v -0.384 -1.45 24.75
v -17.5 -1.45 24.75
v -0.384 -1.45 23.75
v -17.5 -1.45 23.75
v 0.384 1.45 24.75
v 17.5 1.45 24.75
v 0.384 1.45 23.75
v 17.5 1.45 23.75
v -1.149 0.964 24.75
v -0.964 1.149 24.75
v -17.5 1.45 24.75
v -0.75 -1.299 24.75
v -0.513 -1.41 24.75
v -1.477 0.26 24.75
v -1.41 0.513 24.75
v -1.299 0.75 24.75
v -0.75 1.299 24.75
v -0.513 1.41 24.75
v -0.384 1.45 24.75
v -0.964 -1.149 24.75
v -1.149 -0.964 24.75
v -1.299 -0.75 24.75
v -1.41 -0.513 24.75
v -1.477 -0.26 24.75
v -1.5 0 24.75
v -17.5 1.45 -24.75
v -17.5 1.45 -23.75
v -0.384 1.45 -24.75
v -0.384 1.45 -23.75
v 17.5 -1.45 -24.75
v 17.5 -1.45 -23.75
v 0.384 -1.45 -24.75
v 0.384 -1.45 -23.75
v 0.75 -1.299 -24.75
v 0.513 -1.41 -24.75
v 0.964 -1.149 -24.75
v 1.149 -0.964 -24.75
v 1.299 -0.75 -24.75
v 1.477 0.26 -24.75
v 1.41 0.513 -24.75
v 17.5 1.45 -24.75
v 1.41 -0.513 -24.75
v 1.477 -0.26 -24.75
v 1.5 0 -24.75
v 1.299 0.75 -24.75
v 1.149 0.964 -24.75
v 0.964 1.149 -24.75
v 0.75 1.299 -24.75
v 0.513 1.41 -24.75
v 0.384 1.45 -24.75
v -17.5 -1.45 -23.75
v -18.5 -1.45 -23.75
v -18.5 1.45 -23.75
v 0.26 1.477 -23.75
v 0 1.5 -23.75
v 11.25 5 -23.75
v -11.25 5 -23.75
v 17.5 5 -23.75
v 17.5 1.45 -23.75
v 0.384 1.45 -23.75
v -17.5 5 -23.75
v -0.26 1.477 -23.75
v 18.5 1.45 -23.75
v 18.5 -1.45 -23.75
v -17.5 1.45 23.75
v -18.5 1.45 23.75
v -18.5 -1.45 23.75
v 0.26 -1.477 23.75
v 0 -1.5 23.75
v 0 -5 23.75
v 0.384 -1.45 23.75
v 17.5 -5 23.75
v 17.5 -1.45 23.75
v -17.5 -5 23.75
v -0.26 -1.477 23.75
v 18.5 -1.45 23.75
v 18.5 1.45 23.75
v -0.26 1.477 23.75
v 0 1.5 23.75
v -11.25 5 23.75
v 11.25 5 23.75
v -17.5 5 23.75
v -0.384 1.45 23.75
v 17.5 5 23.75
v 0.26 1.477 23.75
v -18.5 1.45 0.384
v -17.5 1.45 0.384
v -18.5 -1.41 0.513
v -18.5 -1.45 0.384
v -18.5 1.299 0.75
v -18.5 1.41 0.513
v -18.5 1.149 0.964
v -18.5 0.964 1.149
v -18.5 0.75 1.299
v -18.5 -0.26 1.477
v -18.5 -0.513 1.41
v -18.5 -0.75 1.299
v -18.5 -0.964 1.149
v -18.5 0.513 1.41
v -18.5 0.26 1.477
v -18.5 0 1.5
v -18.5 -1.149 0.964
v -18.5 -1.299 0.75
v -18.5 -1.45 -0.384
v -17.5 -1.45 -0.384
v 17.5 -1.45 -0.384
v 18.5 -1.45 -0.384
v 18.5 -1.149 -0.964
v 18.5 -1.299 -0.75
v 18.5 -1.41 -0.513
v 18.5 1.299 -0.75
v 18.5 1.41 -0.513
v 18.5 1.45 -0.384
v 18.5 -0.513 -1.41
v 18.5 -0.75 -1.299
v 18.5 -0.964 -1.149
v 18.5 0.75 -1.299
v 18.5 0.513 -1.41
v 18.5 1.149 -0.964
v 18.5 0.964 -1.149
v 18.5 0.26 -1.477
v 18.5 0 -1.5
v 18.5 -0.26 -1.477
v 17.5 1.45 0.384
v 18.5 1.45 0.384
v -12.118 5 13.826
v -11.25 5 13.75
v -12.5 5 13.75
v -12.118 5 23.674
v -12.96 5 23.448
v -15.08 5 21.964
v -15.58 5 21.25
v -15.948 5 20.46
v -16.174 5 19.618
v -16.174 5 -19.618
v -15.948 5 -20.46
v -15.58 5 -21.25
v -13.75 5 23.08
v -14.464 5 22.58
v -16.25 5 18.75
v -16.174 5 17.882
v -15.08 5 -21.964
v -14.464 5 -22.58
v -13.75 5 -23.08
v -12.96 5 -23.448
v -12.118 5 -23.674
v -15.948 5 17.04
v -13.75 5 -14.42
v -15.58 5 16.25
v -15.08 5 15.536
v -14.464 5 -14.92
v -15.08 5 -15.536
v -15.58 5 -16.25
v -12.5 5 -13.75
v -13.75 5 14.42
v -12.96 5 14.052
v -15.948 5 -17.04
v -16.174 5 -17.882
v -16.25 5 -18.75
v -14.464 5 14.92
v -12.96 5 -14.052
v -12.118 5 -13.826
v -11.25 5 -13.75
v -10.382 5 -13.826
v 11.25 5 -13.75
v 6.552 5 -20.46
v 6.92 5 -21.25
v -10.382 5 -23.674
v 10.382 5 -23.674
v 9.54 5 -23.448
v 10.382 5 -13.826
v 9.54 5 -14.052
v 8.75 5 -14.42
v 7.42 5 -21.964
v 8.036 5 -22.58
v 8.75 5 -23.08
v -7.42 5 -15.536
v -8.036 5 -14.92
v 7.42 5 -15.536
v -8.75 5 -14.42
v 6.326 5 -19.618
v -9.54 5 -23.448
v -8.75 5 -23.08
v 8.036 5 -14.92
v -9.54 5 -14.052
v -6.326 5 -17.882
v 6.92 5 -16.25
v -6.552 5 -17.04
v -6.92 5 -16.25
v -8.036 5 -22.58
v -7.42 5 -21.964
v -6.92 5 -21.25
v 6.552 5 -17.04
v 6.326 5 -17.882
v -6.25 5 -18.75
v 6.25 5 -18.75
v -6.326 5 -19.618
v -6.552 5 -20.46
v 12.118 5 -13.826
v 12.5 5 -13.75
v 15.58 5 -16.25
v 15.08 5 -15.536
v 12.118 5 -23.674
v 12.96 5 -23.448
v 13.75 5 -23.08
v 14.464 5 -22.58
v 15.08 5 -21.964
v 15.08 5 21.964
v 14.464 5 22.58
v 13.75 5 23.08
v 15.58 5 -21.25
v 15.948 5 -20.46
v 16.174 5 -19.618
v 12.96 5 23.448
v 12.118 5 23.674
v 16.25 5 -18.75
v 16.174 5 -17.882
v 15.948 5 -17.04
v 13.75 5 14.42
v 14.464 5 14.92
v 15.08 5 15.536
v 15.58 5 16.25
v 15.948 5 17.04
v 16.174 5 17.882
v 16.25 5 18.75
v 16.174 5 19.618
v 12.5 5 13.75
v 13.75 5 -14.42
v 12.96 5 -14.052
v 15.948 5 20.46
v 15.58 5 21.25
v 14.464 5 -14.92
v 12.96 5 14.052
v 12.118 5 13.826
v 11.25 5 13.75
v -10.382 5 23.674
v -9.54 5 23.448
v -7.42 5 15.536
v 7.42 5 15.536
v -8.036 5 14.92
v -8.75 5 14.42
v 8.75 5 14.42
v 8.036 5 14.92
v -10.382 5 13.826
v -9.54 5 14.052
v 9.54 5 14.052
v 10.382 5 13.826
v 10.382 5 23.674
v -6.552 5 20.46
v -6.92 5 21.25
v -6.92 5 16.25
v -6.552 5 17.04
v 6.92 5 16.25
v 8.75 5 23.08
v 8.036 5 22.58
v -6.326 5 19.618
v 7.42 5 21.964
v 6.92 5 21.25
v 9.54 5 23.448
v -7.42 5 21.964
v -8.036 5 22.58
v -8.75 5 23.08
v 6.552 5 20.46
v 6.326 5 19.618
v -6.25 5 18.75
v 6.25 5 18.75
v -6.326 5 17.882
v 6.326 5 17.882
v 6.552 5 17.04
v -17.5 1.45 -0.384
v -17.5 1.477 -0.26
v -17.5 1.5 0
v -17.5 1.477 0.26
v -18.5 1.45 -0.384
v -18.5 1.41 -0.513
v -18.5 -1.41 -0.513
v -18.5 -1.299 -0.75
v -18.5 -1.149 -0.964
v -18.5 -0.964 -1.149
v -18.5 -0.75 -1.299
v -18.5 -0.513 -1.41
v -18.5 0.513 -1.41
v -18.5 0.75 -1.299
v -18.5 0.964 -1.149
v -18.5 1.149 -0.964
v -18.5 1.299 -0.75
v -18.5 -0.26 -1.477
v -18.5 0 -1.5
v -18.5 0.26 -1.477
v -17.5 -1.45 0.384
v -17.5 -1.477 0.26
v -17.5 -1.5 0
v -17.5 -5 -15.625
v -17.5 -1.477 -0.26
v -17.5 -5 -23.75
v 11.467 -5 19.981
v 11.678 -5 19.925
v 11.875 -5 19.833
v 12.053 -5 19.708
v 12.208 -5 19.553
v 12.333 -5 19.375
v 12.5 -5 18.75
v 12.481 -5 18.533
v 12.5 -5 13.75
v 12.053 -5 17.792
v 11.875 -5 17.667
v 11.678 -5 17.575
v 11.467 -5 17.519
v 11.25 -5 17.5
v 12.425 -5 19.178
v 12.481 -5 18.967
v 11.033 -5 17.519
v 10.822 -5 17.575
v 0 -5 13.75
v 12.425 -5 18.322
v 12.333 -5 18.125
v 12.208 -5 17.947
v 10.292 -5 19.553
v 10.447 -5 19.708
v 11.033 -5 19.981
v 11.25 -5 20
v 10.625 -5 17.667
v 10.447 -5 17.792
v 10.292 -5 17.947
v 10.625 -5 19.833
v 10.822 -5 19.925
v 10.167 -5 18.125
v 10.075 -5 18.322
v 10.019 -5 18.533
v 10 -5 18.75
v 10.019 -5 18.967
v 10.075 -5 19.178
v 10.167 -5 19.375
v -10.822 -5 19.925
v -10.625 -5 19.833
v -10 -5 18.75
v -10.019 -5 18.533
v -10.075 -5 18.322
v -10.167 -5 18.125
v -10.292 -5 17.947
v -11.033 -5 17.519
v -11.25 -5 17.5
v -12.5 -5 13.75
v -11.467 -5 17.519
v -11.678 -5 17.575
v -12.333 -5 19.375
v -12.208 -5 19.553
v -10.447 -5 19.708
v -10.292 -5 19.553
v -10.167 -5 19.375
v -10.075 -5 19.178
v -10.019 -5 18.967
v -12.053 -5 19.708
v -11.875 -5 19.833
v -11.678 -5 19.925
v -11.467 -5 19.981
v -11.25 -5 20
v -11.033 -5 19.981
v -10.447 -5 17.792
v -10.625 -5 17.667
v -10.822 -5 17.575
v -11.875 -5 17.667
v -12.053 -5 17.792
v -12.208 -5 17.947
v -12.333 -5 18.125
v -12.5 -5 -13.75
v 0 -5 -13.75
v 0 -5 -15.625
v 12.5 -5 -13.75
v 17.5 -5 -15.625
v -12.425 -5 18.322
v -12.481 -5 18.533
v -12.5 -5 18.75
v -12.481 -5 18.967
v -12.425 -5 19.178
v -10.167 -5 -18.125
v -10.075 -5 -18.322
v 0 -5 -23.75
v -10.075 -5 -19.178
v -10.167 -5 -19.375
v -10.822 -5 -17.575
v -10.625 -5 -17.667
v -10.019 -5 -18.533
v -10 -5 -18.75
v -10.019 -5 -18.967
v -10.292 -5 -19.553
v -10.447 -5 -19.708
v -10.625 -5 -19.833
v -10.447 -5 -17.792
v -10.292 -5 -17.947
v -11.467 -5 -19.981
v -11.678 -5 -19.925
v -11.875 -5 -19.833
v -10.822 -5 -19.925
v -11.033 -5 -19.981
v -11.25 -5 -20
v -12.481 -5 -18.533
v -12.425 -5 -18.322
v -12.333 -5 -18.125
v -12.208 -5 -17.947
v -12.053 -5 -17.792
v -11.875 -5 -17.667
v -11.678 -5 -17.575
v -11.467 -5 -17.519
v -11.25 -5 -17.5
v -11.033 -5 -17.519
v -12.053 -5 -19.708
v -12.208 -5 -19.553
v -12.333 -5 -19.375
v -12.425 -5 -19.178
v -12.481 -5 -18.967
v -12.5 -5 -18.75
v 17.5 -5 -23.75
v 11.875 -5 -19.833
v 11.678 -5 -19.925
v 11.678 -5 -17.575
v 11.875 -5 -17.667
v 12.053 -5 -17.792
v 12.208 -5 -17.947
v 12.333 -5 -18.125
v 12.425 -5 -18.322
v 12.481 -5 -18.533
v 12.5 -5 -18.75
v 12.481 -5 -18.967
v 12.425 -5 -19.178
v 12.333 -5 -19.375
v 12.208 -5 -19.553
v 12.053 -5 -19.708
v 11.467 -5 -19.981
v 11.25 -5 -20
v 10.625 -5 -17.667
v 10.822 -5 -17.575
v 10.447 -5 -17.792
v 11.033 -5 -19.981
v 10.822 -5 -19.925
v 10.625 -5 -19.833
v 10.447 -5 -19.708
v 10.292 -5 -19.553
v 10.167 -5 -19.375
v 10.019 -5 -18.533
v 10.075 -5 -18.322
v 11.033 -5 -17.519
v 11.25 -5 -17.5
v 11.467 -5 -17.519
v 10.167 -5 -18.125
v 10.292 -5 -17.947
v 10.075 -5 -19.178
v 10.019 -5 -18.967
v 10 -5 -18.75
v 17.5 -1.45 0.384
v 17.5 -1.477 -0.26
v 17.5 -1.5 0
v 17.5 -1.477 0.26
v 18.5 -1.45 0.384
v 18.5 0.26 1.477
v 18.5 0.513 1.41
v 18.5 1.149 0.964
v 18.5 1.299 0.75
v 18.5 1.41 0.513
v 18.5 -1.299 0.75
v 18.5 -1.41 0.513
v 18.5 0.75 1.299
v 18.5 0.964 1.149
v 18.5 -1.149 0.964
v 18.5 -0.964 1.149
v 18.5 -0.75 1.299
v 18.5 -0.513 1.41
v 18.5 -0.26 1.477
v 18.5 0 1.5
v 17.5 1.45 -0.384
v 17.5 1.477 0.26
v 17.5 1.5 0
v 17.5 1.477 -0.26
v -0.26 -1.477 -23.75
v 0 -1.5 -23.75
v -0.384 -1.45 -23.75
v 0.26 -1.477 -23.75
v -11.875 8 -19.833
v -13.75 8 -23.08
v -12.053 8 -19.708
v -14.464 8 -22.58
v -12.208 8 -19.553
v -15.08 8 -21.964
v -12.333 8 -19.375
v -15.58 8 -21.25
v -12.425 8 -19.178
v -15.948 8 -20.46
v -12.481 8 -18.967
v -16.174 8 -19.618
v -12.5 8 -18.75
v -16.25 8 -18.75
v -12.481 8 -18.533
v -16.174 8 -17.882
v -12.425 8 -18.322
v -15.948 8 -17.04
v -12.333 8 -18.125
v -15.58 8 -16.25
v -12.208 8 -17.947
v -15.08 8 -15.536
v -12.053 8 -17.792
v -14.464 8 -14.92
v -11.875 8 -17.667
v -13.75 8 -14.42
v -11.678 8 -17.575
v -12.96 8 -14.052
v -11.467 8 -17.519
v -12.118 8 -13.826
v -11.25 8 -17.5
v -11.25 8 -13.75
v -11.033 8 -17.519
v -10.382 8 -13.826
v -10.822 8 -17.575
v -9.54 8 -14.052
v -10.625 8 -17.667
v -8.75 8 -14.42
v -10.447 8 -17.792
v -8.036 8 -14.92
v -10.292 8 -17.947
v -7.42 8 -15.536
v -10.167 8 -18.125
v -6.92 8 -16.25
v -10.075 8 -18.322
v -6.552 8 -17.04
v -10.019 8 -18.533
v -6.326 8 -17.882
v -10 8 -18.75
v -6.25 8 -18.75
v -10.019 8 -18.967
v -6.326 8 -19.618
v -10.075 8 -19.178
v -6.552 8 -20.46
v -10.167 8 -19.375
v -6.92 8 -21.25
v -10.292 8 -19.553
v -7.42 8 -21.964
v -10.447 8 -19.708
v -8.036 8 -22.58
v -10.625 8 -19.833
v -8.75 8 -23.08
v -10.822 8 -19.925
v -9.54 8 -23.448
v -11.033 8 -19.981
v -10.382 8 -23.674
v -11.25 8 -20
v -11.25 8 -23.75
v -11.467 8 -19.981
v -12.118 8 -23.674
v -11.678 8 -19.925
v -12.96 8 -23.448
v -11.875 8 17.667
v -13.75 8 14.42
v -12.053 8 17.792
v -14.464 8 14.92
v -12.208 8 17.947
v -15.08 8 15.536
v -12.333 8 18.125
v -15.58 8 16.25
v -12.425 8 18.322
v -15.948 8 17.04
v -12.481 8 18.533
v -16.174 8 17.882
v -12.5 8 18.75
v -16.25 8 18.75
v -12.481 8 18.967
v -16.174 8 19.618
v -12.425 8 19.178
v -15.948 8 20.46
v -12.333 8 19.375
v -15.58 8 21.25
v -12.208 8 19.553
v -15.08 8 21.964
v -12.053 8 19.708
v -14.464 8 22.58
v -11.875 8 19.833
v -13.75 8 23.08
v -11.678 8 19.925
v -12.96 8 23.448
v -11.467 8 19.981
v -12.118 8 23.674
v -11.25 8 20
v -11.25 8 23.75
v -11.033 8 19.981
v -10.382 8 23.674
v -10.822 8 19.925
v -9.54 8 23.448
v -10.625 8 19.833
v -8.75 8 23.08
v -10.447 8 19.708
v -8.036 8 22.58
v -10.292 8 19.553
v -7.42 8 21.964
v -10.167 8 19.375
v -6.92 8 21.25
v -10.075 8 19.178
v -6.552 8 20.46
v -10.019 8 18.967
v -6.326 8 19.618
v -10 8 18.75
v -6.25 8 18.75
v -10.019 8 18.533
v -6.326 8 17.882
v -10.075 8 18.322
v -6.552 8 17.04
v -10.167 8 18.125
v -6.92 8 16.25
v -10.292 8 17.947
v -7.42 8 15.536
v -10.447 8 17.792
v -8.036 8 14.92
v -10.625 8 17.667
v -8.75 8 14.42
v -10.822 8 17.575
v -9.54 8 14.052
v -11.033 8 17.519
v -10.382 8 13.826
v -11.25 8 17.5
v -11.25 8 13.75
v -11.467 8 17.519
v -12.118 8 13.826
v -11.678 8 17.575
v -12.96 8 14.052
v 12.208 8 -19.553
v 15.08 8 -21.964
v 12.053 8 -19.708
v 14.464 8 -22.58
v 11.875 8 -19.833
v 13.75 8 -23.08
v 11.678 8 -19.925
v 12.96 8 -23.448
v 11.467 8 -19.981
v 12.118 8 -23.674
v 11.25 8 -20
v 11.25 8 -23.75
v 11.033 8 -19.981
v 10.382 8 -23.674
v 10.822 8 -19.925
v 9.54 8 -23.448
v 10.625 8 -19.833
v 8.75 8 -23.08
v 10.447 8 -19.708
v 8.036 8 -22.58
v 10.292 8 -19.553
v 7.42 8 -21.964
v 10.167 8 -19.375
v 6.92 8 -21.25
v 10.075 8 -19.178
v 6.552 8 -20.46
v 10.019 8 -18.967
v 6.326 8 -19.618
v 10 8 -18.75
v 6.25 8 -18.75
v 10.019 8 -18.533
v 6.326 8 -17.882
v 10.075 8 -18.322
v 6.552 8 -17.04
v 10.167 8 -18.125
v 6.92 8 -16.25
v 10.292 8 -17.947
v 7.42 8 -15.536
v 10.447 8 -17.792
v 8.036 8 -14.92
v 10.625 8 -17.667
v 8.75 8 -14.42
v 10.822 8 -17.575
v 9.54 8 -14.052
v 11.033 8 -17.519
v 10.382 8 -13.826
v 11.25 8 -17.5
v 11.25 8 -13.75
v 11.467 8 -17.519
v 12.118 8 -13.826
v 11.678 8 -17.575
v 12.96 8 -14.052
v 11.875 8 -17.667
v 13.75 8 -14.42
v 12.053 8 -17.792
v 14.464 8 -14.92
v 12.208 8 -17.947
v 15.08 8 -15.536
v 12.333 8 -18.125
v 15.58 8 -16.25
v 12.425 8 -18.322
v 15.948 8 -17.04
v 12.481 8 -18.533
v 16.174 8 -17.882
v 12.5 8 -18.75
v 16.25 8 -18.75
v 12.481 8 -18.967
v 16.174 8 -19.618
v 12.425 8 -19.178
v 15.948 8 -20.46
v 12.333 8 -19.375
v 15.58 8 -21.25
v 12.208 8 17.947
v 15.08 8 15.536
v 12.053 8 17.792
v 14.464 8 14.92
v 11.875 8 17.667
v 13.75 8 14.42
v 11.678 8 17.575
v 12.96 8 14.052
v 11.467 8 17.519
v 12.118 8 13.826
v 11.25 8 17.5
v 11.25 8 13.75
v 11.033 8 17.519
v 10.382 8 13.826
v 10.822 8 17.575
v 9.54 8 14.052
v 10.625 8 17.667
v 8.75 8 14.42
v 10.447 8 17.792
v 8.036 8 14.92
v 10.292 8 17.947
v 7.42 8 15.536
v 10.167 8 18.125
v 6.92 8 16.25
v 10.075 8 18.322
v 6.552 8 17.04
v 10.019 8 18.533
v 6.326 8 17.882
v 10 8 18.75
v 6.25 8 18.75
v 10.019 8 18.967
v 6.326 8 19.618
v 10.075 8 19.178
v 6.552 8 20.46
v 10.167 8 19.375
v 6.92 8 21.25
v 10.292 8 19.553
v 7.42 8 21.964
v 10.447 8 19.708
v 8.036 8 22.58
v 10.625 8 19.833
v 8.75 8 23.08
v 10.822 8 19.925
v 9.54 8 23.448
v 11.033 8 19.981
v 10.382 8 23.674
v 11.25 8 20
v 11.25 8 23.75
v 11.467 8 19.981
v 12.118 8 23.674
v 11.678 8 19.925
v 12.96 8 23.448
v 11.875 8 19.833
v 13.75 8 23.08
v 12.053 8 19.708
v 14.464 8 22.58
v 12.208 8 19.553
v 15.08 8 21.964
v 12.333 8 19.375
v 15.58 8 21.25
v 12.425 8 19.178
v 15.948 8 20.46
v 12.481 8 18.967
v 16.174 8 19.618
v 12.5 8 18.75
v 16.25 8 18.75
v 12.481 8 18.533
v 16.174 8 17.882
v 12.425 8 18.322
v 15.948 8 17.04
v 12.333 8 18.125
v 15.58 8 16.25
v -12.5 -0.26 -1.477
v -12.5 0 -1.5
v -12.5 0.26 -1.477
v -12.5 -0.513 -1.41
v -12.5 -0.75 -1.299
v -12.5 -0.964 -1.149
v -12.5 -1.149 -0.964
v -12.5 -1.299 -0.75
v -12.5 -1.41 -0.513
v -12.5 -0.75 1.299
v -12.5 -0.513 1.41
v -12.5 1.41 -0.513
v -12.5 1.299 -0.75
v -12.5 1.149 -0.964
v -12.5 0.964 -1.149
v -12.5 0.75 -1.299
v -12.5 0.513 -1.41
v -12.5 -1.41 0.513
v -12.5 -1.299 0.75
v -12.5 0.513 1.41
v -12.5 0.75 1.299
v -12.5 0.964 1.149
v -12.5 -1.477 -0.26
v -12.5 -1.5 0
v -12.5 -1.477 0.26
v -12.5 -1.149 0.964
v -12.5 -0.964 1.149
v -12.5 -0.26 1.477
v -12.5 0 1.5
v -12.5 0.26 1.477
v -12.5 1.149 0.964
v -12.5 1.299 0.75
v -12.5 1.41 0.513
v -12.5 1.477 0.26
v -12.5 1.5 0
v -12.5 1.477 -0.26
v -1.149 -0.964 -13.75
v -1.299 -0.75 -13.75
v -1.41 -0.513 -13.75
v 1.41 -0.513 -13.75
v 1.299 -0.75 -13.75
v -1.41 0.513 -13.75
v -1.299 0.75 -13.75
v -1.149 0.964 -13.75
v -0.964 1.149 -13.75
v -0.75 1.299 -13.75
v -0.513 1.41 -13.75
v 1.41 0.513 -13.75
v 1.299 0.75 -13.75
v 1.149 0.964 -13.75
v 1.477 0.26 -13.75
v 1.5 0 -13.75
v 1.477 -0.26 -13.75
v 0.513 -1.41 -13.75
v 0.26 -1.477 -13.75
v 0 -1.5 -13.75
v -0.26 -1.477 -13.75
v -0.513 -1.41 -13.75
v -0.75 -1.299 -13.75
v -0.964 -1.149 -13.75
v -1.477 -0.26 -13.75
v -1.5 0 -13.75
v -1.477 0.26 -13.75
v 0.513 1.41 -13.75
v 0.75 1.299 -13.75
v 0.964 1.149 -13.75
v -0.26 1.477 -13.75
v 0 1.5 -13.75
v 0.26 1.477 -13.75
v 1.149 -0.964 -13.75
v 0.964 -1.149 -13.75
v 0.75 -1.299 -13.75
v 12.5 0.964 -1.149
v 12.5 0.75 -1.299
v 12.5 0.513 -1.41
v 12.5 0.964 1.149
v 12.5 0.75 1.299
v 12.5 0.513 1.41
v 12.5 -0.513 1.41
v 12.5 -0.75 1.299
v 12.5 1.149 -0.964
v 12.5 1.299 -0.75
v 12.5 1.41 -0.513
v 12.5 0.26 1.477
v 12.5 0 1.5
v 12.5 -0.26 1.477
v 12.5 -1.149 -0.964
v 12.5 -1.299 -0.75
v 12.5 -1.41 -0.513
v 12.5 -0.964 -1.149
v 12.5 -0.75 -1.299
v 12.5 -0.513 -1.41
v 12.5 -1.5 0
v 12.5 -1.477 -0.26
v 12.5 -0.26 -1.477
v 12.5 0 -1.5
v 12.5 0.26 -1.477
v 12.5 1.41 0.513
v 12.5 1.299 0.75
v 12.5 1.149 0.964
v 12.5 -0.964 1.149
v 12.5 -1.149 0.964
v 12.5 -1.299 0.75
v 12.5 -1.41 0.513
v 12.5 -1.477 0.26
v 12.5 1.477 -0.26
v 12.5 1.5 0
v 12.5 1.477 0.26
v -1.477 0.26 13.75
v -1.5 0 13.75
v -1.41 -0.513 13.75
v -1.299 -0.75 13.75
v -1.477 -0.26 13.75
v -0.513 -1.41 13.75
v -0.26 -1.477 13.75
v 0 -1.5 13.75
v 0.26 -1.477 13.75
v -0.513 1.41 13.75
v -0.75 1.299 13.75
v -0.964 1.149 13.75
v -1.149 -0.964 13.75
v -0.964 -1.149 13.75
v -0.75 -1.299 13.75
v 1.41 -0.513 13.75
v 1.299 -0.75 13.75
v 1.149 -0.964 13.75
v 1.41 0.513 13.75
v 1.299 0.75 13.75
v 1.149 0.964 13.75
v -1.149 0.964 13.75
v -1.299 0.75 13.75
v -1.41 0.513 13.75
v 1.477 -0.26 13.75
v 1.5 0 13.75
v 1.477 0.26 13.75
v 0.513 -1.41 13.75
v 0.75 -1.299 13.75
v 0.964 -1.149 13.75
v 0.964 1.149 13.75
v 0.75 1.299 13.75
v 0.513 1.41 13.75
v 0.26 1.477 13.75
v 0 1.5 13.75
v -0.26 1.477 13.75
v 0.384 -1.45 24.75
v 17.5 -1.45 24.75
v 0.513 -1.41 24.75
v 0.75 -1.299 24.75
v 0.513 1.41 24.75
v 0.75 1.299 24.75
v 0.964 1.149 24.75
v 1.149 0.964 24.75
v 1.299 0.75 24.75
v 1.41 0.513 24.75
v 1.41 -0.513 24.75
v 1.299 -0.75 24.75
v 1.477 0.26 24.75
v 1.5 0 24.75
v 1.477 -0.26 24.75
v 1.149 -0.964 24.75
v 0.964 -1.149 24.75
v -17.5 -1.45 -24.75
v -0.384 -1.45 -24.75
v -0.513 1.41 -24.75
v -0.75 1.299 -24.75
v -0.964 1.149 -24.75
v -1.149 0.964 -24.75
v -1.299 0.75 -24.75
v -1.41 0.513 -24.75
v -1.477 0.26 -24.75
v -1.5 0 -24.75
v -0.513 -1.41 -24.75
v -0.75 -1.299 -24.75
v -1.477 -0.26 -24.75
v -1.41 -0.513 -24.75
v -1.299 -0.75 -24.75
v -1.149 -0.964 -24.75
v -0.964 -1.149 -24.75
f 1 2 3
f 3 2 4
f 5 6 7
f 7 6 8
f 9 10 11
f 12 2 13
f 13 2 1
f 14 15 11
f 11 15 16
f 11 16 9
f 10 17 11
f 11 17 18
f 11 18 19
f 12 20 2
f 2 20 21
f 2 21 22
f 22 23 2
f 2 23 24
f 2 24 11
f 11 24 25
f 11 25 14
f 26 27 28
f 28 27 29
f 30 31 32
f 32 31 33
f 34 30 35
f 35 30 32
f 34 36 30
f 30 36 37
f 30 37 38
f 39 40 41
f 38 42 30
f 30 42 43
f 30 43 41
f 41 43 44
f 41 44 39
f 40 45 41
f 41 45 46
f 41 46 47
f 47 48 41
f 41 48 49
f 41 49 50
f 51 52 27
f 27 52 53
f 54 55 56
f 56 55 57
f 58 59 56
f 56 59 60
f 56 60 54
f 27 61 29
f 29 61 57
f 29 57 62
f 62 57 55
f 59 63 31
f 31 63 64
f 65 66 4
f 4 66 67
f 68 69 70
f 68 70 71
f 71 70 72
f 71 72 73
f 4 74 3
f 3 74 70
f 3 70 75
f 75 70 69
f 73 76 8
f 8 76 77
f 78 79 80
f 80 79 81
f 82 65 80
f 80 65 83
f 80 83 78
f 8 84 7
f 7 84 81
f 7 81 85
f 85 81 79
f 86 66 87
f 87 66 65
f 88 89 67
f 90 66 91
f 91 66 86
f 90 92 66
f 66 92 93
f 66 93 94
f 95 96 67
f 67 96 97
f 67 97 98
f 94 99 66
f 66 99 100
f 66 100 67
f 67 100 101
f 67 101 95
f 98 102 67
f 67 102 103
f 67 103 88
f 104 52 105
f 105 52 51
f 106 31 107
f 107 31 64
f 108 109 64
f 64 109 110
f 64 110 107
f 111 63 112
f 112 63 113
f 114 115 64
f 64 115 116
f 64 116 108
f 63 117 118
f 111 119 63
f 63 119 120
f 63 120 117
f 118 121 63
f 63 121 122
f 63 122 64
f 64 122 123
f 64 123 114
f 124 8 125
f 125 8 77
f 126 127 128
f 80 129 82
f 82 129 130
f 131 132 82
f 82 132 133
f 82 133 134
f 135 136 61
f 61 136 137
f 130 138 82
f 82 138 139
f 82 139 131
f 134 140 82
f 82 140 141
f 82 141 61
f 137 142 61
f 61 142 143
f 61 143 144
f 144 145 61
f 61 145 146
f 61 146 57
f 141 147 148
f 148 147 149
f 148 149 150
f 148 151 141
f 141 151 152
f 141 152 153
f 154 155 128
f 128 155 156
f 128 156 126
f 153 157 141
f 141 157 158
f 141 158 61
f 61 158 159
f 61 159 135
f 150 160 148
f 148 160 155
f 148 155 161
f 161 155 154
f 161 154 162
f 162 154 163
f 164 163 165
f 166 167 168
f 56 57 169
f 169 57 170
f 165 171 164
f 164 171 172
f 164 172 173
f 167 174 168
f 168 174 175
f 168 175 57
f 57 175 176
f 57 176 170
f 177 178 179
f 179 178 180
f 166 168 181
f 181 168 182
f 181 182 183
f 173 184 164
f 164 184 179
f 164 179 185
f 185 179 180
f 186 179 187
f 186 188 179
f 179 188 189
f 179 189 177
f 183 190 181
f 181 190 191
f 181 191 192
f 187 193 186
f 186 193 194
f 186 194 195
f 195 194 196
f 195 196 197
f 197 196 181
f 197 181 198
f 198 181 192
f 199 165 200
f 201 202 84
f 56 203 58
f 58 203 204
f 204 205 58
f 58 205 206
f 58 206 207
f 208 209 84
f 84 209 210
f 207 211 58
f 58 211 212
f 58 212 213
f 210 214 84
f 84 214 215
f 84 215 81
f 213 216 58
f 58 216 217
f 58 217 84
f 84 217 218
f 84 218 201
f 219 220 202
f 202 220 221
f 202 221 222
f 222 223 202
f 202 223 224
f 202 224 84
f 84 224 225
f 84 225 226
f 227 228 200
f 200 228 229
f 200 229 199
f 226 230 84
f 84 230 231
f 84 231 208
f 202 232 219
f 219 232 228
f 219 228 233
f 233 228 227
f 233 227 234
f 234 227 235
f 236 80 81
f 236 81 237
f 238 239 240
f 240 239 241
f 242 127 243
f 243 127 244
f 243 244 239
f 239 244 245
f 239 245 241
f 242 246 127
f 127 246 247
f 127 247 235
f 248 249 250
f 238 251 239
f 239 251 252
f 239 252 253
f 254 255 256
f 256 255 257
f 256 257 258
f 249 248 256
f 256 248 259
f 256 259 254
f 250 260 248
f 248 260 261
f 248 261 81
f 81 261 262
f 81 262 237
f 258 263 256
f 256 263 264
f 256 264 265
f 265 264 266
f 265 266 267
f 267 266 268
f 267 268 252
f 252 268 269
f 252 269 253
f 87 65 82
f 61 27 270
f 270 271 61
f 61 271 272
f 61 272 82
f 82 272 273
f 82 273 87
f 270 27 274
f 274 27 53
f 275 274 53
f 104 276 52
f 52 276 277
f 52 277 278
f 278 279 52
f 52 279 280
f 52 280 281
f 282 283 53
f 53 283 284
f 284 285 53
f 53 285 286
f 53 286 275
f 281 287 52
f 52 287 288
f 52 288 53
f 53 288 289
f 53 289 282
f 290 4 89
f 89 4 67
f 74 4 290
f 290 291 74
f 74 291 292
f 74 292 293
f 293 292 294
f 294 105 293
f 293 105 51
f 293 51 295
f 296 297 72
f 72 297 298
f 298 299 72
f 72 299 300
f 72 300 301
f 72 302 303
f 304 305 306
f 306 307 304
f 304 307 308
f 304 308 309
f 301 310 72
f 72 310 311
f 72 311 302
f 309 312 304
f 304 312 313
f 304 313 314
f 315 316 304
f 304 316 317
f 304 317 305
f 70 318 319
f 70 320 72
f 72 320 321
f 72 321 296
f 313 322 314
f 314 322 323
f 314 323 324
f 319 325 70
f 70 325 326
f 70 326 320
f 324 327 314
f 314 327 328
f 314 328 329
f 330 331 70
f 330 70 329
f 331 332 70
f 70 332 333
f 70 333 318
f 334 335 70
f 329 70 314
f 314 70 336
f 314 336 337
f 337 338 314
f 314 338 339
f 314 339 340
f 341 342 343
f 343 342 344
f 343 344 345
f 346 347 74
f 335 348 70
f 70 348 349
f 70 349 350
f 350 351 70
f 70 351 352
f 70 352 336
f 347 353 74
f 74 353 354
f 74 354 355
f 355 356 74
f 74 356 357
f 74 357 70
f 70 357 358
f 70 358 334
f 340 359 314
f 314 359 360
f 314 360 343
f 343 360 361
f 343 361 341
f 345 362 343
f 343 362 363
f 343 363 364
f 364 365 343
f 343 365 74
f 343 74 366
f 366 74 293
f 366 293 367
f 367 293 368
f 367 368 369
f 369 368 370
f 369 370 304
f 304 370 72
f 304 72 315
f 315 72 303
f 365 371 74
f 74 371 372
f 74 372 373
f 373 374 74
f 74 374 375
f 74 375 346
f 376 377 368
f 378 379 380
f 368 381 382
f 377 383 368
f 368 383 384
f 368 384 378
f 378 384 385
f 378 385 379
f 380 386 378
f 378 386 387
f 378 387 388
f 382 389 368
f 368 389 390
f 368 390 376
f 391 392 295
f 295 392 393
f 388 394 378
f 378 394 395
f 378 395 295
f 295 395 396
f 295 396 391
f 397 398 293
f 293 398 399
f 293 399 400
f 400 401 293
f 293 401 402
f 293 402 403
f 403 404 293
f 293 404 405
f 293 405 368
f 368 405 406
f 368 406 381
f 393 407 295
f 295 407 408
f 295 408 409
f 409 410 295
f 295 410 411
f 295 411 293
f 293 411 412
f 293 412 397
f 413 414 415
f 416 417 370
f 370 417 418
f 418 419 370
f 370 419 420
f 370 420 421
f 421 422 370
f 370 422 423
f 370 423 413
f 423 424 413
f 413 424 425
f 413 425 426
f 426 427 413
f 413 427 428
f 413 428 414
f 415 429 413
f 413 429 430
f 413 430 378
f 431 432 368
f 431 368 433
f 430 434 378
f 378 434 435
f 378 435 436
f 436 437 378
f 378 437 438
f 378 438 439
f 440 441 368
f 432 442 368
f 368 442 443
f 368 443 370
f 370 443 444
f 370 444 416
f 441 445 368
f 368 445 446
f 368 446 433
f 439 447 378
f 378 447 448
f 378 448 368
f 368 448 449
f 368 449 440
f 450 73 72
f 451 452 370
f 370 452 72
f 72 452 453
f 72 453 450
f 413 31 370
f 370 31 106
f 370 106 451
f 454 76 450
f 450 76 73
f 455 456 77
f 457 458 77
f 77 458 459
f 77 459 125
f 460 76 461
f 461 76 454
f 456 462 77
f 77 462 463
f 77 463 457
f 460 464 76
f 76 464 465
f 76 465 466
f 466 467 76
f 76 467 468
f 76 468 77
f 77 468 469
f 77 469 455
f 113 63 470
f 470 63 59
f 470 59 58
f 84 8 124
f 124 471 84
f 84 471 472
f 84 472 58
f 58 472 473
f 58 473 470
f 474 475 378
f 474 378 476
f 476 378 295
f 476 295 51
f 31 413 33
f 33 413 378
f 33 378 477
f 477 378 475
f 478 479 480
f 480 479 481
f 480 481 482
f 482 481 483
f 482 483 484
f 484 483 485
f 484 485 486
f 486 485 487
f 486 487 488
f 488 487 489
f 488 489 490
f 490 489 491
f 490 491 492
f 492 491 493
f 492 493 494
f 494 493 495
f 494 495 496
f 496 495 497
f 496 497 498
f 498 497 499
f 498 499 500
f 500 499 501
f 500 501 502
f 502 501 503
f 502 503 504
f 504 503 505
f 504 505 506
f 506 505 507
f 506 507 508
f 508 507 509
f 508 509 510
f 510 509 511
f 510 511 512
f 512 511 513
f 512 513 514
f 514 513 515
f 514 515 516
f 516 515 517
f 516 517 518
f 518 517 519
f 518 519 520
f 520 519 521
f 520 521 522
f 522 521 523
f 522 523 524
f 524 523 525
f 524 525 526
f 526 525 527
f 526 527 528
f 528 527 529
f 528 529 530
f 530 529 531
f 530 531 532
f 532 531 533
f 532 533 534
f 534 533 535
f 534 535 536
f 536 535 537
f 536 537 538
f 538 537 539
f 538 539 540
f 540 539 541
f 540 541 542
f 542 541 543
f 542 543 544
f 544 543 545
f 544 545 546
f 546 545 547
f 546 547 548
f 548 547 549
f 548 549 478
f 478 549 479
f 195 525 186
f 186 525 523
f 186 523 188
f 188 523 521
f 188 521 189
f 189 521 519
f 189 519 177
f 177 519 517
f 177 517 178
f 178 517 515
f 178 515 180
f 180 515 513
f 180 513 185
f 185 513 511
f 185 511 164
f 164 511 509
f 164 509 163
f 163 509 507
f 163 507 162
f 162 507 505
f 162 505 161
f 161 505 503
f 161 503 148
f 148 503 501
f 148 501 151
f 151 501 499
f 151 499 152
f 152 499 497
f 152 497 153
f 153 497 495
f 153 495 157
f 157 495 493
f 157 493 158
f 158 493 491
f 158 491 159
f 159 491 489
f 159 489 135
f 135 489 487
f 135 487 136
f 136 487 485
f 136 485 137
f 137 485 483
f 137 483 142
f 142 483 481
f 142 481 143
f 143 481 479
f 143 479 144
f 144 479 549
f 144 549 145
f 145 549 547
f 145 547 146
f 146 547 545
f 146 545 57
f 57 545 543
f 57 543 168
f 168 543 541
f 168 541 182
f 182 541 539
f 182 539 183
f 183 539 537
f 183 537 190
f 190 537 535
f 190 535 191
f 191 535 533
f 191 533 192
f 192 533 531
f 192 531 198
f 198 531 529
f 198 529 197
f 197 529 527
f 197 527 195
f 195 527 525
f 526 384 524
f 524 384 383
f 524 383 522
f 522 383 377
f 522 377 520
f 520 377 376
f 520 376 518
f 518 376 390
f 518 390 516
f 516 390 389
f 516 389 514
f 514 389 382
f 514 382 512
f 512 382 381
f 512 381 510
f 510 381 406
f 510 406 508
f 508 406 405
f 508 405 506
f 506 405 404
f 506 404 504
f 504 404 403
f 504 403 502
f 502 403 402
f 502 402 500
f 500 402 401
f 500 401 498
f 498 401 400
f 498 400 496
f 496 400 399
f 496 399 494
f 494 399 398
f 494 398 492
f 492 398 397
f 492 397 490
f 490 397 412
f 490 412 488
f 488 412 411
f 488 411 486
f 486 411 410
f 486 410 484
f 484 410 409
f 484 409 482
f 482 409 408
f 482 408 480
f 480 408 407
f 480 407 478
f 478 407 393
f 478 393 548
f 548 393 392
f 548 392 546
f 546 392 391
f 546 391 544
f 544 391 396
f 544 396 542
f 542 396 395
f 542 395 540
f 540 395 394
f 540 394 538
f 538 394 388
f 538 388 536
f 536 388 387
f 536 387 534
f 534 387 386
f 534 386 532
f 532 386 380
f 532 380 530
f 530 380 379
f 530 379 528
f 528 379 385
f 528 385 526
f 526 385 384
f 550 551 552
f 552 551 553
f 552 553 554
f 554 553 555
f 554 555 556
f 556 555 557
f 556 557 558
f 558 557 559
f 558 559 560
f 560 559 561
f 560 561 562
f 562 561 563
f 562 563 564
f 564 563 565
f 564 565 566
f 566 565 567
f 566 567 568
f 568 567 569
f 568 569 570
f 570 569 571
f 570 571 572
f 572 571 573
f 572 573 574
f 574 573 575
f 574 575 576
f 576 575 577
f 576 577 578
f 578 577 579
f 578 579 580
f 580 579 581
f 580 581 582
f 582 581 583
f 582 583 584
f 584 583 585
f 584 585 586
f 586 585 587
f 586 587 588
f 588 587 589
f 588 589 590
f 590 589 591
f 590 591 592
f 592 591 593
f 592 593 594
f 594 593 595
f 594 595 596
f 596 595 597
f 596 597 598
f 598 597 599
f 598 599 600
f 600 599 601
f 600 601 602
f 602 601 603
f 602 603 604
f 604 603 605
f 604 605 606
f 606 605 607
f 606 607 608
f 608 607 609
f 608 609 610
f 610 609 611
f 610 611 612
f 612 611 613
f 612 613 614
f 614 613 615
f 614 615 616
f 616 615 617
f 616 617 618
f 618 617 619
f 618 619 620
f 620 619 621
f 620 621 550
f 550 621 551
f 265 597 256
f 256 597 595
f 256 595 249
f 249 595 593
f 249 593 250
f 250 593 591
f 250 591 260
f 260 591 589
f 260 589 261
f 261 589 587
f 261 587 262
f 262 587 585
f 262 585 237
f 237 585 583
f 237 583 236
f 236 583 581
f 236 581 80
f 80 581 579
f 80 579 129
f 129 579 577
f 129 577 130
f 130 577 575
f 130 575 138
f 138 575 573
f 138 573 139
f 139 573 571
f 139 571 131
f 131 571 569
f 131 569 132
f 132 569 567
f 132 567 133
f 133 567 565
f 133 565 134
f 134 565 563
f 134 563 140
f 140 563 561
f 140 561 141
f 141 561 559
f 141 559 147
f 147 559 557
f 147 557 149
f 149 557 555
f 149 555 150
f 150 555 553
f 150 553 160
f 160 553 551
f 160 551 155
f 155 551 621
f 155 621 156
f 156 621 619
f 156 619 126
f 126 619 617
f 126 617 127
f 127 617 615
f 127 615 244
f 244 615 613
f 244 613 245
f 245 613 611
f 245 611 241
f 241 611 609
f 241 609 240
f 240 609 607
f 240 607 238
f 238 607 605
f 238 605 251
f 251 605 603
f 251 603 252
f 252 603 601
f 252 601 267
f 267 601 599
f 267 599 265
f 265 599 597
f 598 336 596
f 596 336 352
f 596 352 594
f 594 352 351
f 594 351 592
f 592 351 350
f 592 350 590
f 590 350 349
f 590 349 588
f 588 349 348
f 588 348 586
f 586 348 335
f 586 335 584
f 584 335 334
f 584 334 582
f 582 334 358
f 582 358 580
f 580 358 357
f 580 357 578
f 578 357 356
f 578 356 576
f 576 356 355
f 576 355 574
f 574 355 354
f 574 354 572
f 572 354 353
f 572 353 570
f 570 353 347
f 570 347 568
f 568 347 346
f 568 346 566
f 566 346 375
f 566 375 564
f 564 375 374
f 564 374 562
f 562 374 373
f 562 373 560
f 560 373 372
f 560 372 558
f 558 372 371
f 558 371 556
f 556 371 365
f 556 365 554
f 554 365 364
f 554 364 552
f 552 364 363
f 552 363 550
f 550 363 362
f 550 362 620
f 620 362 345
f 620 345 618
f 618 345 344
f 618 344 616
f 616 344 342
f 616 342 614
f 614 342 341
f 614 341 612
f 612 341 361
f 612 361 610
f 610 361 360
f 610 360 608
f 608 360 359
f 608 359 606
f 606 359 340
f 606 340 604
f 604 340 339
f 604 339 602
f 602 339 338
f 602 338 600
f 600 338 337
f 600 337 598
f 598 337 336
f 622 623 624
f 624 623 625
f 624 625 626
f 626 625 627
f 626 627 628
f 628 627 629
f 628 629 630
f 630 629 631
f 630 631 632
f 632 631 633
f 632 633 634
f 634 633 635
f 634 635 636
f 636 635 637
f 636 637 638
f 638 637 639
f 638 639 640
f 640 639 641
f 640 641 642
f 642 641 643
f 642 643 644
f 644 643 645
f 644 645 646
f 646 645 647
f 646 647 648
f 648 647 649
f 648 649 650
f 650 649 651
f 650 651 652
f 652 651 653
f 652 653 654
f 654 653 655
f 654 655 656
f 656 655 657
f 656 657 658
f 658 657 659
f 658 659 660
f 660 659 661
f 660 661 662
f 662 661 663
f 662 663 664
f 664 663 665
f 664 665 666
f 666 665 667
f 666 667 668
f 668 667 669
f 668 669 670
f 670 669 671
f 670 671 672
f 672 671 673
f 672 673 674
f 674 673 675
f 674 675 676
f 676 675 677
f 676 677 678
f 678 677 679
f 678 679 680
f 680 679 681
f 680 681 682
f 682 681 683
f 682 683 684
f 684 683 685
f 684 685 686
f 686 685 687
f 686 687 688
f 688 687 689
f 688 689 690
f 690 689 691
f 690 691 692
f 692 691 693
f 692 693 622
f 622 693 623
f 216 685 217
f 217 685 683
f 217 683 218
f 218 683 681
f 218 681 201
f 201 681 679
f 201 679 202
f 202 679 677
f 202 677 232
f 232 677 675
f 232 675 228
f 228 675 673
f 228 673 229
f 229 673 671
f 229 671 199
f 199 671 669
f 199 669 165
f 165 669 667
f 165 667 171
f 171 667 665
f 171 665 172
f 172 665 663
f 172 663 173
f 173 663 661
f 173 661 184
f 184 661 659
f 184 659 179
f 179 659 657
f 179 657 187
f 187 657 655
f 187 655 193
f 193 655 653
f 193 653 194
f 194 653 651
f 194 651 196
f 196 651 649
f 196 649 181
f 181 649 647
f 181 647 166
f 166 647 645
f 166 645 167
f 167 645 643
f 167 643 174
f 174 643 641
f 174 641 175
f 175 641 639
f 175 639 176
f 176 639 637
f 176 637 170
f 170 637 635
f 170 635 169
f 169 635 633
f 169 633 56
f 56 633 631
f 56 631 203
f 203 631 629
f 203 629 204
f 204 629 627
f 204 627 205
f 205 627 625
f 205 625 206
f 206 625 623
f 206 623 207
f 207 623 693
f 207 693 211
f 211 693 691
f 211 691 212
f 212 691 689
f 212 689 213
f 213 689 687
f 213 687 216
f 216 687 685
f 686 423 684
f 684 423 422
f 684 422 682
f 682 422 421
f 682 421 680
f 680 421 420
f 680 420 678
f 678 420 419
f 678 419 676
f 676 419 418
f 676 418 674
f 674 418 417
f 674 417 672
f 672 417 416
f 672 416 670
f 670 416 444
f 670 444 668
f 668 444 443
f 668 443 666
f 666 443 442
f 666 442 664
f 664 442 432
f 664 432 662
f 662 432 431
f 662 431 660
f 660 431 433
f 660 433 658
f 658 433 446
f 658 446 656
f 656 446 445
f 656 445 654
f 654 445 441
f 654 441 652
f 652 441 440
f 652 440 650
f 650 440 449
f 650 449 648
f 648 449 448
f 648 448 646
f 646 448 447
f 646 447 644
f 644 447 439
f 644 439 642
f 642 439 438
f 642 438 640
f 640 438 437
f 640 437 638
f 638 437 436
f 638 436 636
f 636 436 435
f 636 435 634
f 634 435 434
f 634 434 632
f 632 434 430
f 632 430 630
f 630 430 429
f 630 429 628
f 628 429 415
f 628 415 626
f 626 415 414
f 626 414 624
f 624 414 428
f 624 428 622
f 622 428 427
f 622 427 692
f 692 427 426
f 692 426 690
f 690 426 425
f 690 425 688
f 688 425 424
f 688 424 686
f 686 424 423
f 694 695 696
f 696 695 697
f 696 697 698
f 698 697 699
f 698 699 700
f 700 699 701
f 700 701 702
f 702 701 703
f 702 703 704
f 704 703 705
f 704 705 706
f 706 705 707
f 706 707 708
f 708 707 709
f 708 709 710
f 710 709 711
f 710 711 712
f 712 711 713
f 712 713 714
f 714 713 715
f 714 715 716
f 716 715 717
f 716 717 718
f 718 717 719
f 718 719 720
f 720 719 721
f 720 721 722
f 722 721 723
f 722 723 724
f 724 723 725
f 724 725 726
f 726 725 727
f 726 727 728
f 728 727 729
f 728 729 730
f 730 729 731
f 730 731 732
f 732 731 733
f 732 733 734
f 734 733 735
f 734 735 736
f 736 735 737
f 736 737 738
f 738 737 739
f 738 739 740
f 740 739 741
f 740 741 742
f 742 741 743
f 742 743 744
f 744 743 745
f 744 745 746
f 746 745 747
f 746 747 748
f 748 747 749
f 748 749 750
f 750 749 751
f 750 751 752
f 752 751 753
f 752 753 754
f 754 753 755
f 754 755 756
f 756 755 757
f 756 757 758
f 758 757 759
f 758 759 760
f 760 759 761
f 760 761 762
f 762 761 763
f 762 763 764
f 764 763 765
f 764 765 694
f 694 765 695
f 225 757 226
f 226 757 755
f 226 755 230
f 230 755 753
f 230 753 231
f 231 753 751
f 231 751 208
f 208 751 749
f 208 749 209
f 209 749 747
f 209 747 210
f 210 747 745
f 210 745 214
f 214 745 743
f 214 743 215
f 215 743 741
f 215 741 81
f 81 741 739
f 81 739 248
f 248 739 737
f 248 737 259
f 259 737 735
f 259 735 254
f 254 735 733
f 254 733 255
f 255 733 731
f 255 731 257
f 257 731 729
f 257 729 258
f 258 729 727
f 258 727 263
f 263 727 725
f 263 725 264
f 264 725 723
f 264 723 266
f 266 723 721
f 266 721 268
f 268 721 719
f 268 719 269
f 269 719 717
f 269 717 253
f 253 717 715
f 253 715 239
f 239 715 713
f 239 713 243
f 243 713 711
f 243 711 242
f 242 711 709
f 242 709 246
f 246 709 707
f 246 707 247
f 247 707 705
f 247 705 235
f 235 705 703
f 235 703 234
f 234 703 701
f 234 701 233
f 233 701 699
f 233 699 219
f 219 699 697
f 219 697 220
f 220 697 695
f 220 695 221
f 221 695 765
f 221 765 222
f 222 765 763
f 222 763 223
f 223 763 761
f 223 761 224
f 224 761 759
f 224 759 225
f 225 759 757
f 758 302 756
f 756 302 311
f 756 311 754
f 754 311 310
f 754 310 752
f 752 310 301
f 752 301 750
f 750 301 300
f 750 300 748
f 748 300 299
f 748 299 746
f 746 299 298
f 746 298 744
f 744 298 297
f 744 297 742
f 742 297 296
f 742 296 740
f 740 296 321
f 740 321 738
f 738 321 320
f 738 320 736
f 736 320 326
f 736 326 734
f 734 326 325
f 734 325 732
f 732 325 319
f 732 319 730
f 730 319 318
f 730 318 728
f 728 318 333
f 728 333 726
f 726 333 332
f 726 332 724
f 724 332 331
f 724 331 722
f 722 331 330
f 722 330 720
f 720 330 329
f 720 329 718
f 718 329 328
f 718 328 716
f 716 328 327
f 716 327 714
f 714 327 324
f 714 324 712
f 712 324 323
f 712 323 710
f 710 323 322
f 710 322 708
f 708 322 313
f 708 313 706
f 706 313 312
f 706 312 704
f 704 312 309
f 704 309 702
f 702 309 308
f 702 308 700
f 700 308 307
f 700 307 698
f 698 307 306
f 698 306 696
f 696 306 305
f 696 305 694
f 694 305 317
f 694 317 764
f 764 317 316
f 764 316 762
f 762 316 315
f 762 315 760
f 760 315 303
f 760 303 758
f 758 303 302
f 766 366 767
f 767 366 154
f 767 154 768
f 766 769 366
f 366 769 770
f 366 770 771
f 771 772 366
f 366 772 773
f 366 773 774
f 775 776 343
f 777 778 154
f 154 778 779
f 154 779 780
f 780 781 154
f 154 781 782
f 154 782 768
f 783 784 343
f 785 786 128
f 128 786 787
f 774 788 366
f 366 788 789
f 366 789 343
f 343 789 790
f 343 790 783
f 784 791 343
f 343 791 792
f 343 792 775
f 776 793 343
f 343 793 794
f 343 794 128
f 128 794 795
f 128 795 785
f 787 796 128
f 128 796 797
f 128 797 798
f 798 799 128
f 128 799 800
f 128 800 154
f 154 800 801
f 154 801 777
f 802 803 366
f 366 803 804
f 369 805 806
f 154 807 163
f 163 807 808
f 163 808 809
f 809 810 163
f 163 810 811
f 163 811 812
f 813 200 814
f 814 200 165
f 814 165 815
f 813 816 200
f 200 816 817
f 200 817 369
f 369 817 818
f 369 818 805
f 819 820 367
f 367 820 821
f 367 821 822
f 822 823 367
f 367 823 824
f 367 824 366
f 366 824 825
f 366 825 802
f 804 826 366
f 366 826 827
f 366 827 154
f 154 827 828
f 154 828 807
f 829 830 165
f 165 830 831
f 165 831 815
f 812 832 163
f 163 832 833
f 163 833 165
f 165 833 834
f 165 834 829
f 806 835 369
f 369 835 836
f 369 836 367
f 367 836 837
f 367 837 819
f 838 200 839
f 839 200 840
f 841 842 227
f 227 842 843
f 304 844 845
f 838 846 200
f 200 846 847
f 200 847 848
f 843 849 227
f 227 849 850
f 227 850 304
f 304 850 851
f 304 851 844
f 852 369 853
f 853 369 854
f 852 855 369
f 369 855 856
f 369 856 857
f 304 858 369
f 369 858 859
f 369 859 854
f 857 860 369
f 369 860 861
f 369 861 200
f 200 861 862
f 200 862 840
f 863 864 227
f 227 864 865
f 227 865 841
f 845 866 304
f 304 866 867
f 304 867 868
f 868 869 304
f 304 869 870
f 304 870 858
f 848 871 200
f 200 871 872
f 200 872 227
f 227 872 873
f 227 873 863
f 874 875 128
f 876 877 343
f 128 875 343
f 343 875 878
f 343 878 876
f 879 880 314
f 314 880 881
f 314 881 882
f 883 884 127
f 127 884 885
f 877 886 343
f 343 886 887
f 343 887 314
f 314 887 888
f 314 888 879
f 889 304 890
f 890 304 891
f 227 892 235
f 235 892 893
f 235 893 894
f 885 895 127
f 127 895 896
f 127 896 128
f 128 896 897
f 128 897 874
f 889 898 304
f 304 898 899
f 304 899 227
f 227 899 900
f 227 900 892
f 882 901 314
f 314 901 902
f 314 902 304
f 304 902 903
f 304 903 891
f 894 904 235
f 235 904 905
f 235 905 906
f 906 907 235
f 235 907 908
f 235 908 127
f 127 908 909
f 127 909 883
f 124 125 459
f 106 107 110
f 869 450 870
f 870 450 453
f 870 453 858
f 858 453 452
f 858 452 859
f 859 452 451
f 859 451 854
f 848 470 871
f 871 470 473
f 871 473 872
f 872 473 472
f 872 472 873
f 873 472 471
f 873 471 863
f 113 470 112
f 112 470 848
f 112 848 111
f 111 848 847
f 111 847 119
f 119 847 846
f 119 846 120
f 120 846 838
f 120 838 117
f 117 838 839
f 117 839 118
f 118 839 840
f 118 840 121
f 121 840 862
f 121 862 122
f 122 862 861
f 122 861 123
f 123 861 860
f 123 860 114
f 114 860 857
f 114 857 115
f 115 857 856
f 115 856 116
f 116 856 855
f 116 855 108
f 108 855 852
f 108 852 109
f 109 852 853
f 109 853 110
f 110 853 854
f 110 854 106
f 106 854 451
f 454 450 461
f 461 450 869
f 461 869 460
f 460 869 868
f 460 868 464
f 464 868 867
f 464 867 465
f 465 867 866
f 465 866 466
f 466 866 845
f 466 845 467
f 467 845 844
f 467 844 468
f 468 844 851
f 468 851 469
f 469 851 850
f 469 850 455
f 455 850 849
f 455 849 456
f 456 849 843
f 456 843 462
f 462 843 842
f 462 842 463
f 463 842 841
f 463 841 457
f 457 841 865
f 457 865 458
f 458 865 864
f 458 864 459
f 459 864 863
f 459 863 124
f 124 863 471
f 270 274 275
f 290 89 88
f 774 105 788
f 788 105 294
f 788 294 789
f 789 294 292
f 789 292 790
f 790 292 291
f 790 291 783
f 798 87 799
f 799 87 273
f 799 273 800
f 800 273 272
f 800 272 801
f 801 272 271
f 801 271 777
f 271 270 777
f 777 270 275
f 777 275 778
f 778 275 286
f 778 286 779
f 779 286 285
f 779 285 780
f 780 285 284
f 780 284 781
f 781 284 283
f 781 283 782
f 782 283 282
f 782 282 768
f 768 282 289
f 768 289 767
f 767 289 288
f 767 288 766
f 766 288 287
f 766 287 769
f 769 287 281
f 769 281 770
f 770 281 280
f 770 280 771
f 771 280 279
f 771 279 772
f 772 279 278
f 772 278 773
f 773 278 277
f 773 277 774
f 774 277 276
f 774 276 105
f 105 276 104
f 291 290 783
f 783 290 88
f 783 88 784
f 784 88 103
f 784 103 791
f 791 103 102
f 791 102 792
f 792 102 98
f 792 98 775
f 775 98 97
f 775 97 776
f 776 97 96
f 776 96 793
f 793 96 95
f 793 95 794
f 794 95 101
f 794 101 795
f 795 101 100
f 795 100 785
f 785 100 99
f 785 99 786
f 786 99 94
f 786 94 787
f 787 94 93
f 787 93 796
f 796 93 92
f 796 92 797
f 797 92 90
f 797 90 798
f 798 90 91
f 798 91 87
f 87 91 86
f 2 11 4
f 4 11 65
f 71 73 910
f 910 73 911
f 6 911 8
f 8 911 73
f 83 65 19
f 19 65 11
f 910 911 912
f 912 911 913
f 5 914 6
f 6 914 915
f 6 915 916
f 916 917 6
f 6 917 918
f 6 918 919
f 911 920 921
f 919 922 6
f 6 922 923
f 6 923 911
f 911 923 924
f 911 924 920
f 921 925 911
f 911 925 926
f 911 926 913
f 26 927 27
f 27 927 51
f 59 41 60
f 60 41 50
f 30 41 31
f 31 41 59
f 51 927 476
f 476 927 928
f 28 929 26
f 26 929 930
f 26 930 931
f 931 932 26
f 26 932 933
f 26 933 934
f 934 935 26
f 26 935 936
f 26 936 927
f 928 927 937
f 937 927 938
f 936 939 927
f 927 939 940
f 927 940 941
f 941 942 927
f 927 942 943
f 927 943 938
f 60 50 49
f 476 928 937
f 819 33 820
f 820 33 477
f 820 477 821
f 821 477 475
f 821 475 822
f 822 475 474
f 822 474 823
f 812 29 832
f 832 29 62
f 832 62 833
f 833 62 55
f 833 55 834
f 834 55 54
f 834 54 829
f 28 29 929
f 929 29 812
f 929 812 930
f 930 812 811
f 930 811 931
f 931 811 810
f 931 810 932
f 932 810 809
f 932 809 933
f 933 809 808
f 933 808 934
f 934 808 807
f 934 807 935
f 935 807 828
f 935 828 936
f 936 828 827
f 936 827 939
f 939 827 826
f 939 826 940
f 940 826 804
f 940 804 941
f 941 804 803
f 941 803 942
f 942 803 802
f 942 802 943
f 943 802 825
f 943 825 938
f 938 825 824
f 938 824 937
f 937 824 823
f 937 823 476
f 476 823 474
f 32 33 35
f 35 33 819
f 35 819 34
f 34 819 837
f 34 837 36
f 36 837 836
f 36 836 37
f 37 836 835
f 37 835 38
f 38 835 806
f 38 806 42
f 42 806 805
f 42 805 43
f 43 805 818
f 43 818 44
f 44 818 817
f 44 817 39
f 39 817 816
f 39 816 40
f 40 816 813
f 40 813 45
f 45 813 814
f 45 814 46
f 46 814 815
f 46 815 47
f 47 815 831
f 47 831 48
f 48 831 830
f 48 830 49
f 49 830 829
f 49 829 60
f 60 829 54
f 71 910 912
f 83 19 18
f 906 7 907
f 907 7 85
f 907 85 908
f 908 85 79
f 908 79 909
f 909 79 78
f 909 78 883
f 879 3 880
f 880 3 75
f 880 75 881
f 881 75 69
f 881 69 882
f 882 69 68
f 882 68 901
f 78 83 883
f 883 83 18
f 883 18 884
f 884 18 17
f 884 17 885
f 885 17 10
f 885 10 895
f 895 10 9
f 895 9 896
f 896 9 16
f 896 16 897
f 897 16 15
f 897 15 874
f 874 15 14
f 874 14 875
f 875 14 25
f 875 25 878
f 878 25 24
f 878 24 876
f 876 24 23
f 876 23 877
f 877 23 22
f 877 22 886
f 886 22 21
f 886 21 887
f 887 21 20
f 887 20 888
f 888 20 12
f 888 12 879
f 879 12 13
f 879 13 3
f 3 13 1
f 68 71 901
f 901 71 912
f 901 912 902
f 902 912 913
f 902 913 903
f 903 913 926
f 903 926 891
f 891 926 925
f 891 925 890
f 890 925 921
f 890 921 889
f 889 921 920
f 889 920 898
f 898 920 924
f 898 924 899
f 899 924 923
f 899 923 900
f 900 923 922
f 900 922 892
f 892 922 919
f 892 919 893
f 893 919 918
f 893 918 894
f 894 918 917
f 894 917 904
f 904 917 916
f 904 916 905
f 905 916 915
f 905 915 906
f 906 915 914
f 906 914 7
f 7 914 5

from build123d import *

# Parameters (mm, degrees)
MAIN_DEPTH               = 23.75
SKETCH2_R                = 5
SKETCH2_R_2              = 1.25
PLOT_DEPTH               = 3
SKETCH4_R                = 1.25
FIXHOLE_DEPTH            = 32.722428974
SKETCH3_W                = 25
SKETCH3_H                = 27.5
CENTRALHOLE_DEPTH        = 32.722428974
SKETCH5_R                = 1.5
MAKERBEAMFIXHOLE_DEPTH   = 45.688505233
SKETCH6_W                = 35
SKETCH6_H                = 2.9
MAKERBEAMOTHERRAIL_DEPTH = 1
SKETCH7_R                = 1.5
CUT_EXTRUDE4_DEPTH       = 54.446234666


with BuildPart() as part:
    # Sketch1 → Main (new, symmetric)
    with BuildSketch(Plane.XY):
        Polygon((-17.5, 5), (-17.5, 1.45), (-18.5, 1.45), (-18.5, -1.45), (-17.5, -1.45), (-17.5, -5), (17.5, -5), (17.5, -1.45), (18.5, -1.45), (18.5, 1.45), (17.5, 1.45), (17.5, 5), align=None)
    extrude(amount=MAIN_DEPTH, both=True)

    # Sketch2 → Plot (add)
    # profile 1 of 4: a face of its own
    with BuildSketch(Plane(origin=(0, 5, 0), x_dir=(1, 0, 0), z_dir=(0, 1, 0))):
        with Locations((-11.25, 18.75)):
            Circle(SKETCH2_R)
        with Locations((-11.25, 18.75)):
            Circle(SKETCH2_R_2, mode=Mode.SUBTRACT)
    # profile 2 of 4: a face of its own
    with BuildSketch(Plane(origin=(0, 5, 0), x_dir=(1, 0, 0), z_dir=(0, 1, 0))):
        with Locations((-11.25, -18.75)):
            Circle(SKETCH2_R)
        with Locations((-11.25, -18.75)):
            Circle(SKETCH2_R_2, mode=Mode.SUBTRACT)
    # profile 3 of 4: a face of its own
    with BuildSketch(Plane(origin=(0, 5, 0), x_dir=(1, 0, 0), z_dir=(0, 1, 0))):
        with Locations((11.25, 18.75)):
            Circle(SKETCH2_R)
        with Locations((11.25, 18.75)):
            Circle(SKETCH2_R_2, mode=Mode.SUBTRACT)
    # profile 4 of 4: a face of its own
    with BuildSketch(Plane(origin=(0, 5, 0), x_dir=(1, 0, 0), z_dir=(0, 1, 0))):
        with Locations((11.25, -18.75)):
            Circle(SKETCH2_R)
        with Locations((11.25, -18.75)):
            Circle(SKETCH2_R_2, mode=Mode.SUBTRACT)
    extrude(amount=PLOT_DEPTH)

    # Sketch4 → FixHole (cut, through all)
    with BuildSketch(Plane(origin=(0, 5, 0), x_dir=(1, 0, 0), z_dir=(0, 1, 0))):
        with Locations((-11.25, 18.75)):
            Circle(SKETCH4_R)
        with Locations((11.25, 18.75)):
            Circle(SKETCH4_R)
        with Locations((11.25, -18.75)):
            Circle(SKETCH4_R)
        with Locations((-11.25, -18.75)):
            Circle(SKETCH4_R)
    extrude(amount=-FIXHOLE_DEPTH, mode=Mode.SUBTRACT)

    # Sketch3 → CentralHole (cut, through all)
    with BuildSketch(Plane(origin=(0, 5, 0), x_dir=(1, 0, 0), z_dir=(0, 1, 0))):
        Rectangle(SKETCH3_W, SKETCH3_H)
    extrude(amount=-CENTRALHOLE_DEPTH, mode=Mode.SUBTRACT)

    # Sketch5 → MakerBeamFixHole (cut, through all)
    with BuildSketch(Plane.ZY.offset(18.5)):
        Circle(SKETCH5_R)
    extrude(amount=-MAKERBEAMFIXHOLE_DEPTH, mode=Mode.SUBTRACT)

    # Sketch6 → MakerBeamOtherRail (add)
    with BuildSketch(Plane.XY.offset(23.75)):
        Rectangle(SKETCH6_W, SKETCH6_H)
    makerbeamotherrail = extrude(amount=MAKERBEAMOTHERRAIL_DEPTH)

    # Mirror5: MakerBeamOtherRail across plane
    add(makerbeamotherrail.mirror(Plane.XY))

    # Sketch7 → Cut-Extrude4 (cut, through all)
    with BuildSketch(Plane.XY.offset(24.75)):
        Circle(SKETCH7_R)
    extrude(amount=-CUT_EXTRUDE4_DEPTH, mode=Mode.SUBTRACT)


solid = part.part
